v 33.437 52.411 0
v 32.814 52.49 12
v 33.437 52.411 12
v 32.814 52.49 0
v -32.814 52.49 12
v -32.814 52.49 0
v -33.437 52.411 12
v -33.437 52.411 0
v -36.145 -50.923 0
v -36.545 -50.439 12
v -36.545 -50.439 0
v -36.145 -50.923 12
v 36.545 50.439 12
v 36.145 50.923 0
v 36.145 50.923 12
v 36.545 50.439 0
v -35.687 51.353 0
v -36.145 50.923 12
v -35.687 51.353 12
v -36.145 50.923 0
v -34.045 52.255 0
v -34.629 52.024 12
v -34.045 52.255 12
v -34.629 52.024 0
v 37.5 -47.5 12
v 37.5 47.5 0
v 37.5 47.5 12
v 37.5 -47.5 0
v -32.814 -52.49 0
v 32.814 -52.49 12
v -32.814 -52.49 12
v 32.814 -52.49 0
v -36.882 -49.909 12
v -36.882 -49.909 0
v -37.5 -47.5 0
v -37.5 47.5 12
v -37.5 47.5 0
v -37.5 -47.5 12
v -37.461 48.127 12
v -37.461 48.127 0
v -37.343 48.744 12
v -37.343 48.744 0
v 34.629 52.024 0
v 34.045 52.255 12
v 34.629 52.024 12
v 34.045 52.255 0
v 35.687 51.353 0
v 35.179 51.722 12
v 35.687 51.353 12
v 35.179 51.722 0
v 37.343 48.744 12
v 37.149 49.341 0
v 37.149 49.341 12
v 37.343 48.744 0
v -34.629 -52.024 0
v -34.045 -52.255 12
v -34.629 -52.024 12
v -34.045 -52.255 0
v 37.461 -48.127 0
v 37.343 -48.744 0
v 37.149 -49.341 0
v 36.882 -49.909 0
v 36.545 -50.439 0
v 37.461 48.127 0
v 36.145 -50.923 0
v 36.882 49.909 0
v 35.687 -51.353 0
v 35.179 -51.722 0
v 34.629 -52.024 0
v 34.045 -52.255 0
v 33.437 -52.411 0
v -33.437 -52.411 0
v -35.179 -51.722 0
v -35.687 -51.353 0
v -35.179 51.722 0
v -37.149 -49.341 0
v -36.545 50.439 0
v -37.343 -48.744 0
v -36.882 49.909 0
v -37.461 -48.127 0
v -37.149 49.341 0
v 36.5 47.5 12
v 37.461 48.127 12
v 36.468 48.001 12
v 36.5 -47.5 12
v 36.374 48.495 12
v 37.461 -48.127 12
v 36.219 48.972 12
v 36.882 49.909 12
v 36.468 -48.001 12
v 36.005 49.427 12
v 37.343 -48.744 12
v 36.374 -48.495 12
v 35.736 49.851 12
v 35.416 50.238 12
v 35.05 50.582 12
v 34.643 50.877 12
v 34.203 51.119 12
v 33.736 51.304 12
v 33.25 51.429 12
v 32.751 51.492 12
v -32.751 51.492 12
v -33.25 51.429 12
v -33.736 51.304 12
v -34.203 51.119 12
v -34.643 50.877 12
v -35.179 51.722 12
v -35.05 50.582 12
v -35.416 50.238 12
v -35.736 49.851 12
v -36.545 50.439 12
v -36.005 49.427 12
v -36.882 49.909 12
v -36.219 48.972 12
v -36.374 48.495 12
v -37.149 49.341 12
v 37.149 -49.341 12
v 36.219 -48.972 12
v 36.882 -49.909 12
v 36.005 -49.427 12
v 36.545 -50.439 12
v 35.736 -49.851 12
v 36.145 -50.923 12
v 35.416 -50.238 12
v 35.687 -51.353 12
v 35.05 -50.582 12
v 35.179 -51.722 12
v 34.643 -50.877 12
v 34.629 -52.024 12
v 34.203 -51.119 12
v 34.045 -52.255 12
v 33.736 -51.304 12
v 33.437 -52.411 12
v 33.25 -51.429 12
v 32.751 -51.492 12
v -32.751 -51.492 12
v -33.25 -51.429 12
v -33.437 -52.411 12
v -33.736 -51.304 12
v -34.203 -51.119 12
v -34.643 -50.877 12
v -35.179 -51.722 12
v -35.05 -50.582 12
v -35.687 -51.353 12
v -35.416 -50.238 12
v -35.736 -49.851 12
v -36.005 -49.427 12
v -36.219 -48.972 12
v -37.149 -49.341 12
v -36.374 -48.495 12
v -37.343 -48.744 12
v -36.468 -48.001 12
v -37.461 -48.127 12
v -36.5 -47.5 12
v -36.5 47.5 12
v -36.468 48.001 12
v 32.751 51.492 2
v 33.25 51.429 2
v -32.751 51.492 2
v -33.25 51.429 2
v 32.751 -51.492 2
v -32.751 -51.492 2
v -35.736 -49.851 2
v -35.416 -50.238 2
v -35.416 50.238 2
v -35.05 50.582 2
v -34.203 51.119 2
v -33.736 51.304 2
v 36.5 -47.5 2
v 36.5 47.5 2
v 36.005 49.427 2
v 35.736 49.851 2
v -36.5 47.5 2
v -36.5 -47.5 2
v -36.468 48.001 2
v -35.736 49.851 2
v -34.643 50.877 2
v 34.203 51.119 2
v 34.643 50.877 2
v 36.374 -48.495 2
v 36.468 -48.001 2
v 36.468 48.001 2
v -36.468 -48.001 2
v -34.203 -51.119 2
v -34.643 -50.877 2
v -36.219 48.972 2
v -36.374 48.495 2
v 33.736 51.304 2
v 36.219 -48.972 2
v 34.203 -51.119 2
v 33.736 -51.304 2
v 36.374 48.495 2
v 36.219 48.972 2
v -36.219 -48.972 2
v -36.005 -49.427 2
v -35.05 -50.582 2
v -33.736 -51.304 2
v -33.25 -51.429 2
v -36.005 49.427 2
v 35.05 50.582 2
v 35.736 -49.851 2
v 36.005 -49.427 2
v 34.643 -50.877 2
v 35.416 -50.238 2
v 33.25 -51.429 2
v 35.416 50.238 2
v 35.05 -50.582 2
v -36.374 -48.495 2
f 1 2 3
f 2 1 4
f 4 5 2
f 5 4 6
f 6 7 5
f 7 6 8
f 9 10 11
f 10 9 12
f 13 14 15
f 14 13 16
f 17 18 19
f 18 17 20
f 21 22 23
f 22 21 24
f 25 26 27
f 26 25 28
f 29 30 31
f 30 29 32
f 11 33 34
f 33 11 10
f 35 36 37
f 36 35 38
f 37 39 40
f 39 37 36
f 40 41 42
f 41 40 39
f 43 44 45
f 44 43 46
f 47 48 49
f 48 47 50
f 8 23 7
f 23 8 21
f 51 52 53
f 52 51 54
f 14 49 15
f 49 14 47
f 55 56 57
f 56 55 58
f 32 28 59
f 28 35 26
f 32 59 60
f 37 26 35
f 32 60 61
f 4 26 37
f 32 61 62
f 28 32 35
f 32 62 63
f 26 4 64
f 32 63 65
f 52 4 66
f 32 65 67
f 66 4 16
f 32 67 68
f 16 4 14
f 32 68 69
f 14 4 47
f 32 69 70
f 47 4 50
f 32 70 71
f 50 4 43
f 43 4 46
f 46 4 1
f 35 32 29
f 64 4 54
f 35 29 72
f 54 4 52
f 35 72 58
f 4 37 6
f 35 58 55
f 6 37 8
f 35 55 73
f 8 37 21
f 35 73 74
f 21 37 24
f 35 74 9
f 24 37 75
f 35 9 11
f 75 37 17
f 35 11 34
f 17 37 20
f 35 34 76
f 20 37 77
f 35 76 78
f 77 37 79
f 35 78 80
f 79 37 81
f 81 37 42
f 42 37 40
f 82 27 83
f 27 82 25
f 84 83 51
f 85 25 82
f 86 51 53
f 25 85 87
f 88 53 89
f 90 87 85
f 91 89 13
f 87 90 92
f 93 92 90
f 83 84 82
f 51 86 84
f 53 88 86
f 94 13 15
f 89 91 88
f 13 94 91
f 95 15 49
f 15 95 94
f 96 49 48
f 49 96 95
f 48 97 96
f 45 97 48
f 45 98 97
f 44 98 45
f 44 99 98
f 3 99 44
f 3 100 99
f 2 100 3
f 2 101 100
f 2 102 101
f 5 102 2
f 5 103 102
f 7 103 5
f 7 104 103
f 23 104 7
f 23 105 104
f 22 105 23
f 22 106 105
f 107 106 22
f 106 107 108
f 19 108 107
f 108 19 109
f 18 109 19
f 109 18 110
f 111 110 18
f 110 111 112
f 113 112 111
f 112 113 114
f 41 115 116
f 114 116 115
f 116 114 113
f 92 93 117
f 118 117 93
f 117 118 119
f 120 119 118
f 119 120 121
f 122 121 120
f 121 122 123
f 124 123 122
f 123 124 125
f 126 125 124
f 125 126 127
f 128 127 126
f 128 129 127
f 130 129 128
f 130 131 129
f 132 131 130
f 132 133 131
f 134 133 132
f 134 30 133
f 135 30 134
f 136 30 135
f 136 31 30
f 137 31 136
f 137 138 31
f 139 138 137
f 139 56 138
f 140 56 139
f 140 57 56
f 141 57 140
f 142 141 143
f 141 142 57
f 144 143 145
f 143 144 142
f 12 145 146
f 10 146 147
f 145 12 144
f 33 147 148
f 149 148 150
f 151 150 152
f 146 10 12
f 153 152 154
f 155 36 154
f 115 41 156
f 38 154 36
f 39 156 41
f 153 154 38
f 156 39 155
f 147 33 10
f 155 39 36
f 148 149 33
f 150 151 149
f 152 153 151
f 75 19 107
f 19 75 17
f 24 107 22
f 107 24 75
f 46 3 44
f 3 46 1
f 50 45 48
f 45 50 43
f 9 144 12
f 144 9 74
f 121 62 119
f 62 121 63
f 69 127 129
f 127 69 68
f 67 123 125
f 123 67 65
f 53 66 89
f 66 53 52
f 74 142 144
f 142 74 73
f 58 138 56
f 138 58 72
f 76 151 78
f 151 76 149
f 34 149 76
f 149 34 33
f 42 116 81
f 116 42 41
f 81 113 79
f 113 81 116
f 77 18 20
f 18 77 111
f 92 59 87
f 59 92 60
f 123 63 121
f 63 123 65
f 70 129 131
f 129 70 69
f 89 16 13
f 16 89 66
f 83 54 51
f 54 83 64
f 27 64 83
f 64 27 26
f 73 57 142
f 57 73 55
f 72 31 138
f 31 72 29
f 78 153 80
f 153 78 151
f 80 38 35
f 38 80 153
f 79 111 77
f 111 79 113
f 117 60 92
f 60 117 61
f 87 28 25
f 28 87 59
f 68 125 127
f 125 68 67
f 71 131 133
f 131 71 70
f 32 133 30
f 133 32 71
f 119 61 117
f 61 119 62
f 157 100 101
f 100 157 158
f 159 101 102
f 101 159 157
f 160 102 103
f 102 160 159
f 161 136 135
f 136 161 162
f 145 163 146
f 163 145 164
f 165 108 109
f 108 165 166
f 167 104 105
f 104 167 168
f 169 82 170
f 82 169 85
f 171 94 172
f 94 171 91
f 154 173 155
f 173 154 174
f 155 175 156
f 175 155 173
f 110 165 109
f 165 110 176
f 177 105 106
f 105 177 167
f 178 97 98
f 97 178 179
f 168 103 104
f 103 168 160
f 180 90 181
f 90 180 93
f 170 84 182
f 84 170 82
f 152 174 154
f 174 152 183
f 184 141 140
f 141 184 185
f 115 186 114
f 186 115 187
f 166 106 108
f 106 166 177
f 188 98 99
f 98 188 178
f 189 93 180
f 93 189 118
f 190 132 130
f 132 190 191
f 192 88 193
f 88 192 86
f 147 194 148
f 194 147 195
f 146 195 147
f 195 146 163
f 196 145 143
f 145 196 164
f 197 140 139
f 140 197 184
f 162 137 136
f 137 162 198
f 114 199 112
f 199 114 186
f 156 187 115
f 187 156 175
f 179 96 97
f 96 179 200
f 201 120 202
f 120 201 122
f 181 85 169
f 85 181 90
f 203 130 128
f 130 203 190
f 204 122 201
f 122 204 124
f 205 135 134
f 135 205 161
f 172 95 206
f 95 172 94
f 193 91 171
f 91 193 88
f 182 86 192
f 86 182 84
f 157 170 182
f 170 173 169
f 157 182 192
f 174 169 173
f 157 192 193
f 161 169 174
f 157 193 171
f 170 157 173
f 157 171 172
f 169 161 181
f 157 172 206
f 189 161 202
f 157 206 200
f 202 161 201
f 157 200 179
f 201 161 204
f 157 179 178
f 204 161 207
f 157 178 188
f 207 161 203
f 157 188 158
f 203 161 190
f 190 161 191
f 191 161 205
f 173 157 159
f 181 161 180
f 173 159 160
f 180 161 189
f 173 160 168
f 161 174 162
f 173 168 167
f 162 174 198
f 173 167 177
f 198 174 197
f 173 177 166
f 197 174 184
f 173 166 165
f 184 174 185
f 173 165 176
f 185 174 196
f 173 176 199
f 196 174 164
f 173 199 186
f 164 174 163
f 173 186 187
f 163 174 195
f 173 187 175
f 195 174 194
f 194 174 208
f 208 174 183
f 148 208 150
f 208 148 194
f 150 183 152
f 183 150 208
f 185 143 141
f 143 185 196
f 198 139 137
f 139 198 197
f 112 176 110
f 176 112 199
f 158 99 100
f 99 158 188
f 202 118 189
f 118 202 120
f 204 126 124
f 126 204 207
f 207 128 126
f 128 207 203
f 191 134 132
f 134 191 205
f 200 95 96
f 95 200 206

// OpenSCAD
$fn = 50;


difference() {
	union() {
		hull() {
			translate(v = [-32.5000000000, 47.5000000000, 0]) {
				cylinder(h = 12, r = 5);
			}
			translate(v = [32.5000000000, 47.5000000000, 0]) {
				cylinder(h = 12, r = 5);
			}
			translate(v = [-32.5000000000, -47.5000000000, 0]) {
				cylinder(h = 12, r = 5);
			}
			translate(v = [32.5000000000, -47.5000000000, 0]) {
				cylinder(h = 12, r = 5);
			}
		}
	}
	union() {
		translate(v = [0, 0, 2]) {
			hull() {
				translate(v = [-32.5000000000, 47.5000000000, 0]) {
					cylinder(h = 10, r = 4);
				}
				translate(v = [32.5000000000, 47.5000000000, 0]) {
					cylinder(h = 10, r = 4);
				}
				translate(v = [-32.5000000000, -47.5000000000, 0]) {
					cylinder(h = 10, r = 4);
				}
				translate(v = [32.5000000000, -47.5000000000, 0]) {
					cylinder(h = 10, r = 4);
				}
			}
		}
	}
}
